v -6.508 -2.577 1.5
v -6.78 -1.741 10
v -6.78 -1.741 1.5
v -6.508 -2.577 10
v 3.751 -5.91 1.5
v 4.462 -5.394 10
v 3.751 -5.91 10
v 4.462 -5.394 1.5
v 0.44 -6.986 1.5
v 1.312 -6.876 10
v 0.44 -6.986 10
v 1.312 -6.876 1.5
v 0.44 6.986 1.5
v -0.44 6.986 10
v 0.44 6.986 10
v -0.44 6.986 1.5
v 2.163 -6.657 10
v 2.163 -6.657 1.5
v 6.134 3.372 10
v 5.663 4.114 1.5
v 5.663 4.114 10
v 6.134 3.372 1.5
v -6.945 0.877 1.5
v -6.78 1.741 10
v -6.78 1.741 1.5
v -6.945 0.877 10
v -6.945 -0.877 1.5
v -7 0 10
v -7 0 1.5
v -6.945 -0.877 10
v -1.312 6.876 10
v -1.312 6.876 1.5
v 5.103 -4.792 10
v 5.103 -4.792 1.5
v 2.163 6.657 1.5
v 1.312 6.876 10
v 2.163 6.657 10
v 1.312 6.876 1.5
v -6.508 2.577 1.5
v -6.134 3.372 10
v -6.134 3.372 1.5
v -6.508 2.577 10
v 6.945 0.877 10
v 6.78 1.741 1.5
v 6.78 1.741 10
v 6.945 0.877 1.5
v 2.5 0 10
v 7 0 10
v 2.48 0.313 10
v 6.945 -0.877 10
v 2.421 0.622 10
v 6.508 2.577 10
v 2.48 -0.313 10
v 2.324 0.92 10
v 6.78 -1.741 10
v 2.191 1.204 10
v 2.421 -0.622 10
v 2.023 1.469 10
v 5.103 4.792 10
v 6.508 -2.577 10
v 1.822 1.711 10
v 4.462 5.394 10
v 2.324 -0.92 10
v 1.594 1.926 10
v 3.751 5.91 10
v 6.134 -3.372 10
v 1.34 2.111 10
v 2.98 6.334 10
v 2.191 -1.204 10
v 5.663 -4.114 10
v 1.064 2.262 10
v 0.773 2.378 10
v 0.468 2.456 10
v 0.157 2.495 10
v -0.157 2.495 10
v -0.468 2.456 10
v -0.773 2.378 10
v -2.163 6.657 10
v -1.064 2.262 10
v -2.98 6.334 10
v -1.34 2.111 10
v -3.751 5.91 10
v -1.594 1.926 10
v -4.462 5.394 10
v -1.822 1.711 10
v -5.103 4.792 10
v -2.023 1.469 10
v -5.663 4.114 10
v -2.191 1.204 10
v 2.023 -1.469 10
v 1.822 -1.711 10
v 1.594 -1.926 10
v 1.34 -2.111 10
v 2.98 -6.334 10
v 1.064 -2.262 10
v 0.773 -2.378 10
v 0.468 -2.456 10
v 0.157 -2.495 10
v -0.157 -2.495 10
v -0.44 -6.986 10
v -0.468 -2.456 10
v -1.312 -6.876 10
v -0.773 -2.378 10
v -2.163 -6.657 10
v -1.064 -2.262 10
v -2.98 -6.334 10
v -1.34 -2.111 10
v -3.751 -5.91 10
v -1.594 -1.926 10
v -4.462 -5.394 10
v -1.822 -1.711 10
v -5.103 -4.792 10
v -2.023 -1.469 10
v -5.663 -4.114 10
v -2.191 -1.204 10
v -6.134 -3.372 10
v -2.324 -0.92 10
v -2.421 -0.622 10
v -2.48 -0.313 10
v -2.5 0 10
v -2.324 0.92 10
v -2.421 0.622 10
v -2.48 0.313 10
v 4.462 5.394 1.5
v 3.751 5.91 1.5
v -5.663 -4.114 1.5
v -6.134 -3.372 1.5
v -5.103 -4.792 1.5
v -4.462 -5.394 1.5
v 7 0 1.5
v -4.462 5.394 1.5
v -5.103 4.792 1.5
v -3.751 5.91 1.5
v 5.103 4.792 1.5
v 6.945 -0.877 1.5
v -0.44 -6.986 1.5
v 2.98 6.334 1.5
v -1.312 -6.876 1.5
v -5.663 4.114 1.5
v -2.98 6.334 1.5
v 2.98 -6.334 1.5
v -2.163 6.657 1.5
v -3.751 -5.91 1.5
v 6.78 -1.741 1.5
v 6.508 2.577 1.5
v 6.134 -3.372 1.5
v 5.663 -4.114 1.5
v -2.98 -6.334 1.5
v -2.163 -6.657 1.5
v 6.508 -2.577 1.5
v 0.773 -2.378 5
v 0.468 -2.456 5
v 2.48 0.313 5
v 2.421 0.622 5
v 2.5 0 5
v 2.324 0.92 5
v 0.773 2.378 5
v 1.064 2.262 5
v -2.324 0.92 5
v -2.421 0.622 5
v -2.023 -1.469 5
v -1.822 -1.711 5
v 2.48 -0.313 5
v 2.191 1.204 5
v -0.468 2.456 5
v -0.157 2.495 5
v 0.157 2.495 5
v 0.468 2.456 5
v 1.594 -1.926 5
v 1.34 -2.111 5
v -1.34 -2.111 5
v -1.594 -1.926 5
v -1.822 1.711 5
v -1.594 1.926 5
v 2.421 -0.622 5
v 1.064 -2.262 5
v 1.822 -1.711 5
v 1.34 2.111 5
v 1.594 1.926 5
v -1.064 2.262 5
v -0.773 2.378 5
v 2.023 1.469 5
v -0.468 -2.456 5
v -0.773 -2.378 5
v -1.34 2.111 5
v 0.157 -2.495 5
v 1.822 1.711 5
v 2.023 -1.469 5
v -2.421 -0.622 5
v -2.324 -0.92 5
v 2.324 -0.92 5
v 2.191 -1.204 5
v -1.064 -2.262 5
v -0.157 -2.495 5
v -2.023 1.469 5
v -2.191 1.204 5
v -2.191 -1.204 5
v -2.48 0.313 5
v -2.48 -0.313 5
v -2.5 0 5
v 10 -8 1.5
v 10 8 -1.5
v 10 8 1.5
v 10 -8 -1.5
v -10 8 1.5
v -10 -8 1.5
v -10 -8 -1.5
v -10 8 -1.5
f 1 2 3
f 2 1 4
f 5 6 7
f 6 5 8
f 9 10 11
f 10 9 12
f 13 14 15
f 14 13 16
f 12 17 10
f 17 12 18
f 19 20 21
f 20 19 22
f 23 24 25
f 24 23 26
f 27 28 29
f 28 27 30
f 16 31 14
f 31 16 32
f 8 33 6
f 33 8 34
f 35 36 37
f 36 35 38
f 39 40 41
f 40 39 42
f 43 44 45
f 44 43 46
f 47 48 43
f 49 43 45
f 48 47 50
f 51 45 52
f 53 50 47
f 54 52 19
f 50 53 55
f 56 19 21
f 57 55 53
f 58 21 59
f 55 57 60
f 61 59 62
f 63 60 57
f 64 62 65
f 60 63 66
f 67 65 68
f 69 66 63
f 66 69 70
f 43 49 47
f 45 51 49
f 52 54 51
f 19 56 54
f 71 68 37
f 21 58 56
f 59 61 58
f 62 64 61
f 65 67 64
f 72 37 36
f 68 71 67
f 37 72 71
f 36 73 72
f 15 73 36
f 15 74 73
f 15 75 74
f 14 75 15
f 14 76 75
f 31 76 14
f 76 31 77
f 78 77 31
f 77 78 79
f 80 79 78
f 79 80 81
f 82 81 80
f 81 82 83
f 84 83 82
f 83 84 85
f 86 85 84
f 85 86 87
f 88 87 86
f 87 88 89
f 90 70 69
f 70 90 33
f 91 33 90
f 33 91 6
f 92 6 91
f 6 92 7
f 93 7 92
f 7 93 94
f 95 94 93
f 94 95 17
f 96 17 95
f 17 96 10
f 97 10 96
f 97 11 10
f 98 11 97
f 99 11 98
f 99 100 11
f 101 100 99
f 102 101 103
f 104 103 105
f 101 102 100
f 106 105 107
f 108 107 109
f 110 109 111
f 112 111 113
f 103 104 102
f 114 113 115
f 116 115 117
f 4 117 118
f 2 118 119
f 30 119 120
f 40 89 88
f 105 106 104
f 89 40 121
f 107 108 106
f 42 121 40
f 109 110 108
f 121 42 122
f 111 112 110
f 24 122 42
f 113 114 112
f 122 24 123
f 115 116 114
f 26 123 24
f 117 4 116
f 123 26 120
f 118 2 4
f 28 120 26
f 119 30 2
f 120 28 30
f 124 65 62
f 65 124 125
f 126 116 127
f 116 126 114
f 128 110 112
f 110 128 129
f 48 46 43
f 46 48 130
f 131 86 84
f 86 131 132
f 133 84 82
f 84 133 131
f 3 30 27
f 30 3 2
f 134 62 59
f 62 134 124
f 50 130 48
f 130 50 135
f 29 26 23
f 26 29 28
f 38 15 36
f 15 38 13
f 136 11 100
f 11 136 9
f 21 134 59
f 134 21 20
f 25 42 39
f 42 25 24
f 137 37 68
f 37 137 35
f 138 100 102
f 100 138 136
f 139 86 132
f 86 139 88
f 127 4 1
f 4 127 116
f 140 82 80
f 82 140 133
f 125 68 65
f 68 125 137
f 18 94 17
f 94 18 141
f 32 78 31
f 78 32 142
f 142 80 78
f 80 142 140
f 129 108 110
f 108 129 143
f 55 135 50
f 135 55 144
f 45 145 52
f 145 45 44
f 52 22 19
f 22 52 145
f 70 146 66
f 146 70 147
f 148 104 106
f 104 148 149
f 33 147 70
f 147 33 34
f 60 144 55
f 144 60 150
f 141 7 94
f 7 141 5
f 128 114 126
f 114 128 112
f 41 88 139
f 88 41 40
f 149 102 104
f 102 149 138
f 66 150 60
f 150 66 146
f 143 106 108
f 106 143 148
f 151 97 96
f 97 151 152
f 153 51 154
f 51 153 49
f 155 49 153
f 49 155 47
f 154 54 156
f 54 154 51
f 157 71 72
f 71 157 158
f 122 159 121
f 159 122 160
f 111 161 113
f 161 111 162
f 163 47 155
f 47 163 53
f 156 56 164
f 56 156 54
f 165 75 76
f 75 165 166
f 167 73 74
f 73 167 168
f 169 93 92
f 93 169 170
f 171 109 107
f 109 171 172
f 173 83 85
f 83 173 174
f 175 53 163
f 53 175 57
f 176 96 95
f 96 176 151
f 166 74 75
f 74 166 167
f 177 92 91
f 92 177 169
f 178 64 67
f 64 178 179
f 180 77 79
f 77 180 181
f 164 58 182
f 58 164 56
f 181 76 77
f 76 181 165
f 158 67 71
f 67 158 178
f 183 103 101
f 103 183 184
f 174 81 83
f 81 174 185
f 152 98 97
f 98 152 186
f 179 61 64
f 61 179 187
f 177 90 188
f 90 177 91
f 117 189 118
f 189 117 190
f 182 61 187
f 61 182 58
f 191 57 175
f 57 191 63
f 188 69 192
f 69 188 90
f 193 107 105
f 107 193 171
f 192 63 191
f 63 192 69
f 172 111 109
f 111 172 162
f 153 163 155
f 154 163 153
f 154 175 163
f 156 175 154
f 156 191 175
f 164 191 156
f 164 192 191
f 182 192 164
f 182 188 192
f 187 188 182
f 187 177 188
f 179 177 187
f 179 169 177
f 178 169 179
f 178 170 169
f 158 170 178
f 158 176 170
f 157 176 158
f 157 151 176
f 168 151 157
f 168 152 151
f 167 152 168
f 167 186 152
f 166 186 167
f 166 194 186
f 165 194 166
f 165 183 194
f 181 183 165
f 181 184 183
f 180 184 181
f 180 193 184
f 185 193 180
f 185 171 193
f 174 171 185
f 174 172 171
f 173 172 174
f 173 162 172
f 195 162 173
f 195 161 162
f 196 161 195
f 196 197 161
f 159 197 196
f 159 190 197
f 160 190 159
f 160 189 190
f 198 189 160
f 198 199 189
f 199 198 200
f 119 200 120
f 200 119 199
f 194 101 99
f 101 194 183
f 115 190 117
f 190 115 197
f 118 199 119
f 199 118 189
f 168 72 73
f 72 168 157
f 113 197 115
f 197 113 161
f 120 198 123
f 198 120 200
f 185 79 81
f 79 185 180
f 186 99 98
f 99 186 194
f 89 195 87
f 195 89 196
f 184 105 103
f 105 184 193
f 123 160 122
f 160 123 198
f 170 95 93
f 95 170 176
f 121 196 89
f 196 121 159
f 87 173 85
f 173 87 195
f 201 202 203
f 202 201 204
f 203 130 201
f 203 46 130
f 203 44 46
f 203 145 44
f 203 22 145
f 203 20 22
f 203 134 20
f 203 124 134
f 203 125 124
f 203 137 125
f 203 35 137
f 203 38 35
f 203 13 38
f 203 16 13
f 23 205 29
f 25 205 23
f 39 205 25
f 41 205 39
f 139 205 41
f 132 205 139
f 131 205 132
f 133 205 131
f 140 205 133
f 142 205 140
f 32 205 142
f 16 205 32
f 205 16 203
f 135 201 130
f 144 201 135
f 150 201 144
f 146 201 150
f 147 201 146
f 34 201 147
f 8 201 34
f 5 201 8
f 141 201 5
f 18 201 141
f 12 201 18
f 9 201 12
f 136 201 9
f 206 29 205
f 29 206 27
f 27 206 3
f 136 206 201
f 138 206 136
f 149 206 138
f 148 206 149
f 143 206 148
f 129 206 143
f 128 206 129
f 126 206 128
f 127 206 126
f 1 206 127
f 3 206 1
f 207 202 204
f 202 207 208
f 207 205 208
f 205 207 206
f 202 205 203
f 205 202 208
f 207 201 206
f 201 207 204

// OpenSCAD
 // CSG.scad - Basic example of CSG usage

$fn=50;

cube([20,16, 3], true);
difference(){
    cylinder(h=10, d=14, center=false);
    translate([0,0,5]){
        cylinder(h=15, d=5, center=false);
    }
}
